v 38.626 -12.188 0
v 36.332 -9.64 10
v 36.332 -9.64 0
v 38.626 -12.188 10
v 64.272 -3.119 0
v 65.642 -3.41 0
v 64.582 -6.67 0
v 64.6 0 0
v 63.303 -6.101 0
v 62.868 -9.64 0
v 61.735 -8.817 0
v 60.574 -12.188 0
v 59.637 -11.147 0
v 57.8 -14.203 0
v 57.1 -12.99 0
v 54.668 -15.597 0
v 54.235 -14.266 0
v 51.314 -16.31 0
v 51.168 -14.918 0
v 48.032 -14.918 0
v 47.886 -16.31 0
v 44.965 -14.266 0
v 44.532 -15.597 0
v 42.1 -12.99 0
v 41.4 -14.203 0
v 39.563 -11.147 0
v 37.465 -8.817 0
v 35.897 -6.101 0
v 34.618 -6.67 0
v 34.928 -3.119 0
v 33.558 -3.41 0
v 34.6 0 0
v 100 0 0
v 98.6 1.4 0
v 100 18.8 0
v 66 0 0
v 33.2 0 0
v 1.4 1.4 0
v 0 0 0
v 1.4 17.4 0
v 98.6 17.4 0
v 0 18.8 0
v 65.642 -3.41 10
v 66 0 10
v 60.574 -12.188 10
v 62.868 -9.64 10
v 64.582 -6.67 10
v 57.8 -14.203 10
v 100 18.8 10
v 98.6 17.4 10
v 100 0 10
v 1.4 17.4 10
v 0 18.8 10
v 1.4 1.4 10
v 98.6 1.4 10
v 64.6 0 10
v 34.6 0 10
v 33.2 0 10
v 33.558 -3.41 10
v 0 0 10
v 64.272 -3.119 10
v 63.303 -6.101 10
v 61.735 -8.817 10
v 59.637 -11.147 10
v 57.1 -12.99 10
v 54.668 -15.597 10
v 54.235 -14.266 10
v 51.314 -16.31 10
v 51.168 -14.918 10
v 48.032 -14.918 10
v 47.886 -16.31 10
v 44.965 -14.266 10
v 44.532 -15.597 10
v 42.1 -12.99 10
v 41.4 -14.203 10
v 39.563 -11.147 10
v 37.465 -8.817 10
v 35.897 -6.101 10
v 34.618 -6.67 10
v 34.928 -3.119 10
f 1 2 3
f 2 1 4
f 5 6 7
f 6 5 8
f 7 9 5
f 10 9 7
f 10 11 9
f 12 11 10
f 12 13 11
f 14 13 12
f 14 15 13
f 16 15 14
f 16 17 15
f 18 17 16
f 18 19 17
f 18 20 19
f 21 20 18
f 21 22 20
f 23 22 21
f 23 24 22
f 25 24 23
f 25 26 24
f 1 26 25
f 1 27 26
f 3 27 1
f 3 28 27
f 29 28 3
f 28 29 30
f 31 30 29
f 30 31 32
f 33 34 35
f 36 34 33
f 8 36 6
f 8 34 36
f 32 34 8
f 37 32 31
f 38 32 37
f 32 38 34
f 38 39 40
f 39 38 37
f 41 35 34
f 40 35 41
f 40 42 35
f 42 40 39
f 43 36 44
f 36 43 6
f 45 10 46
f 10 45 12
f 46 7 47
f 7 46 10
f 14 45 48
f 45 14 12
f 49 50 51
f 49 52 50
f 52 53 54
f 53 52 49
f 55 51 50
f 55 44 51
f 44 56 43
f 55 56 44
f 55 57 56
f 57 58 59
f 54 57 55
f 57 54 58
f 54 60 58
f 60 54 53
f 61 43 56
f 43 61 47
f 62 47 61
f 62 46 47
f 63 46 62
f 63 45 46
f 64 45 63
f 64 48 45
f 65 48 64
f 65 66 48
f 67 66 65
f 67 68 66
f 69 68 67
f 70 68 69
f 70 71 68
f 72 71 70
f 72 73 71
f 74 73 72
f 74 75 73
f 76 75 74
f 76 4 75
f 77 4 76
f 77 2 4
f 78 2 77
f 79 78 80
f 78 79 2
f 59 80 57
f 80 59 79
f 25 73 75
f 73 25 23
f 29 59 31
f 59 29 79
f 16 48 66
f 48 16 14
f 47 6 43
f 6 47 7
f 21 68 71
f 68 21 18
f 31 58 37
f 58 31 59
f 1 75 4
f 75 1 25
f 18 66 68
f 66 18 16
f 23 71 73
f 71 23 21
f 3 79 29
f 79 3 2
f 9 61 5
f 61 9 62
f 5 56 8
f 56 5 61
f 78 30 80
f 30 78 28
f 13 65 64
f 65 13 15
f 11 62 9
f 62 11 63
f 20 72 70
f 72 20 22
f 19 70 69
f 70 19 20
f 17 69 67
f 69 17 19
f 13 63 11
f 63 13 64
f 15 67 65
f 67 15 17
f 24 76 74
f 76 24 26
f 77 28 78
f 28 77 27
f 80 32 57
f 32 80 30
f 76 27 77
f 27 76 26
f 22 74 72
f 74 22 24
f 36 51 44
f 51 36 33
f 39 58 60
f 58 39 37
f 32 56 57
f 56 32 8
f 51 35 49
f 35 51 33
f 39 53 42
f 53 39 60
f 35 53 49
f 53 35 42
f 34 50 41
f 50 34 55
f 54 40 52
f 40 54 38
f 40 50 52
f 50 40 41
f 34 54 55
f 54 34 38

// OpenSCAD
h = 97.2;
d = 16;
w = 10;

wall = 1.4;

r = 15;


difference(){

union(){
cube([h+wall*2,d+wall*2,w]);
translate([h/2+1,0,0]){
    difference(){
    cylinder(r=r+wall,h=w);
    cylinder(r=r,h=w);
    translate([-r,0,0])
        cube([r*2+wall,r+wall,w]);
    }
}
}
    
translate([wall,wall,0])
    cube([h,d,w]);

}
